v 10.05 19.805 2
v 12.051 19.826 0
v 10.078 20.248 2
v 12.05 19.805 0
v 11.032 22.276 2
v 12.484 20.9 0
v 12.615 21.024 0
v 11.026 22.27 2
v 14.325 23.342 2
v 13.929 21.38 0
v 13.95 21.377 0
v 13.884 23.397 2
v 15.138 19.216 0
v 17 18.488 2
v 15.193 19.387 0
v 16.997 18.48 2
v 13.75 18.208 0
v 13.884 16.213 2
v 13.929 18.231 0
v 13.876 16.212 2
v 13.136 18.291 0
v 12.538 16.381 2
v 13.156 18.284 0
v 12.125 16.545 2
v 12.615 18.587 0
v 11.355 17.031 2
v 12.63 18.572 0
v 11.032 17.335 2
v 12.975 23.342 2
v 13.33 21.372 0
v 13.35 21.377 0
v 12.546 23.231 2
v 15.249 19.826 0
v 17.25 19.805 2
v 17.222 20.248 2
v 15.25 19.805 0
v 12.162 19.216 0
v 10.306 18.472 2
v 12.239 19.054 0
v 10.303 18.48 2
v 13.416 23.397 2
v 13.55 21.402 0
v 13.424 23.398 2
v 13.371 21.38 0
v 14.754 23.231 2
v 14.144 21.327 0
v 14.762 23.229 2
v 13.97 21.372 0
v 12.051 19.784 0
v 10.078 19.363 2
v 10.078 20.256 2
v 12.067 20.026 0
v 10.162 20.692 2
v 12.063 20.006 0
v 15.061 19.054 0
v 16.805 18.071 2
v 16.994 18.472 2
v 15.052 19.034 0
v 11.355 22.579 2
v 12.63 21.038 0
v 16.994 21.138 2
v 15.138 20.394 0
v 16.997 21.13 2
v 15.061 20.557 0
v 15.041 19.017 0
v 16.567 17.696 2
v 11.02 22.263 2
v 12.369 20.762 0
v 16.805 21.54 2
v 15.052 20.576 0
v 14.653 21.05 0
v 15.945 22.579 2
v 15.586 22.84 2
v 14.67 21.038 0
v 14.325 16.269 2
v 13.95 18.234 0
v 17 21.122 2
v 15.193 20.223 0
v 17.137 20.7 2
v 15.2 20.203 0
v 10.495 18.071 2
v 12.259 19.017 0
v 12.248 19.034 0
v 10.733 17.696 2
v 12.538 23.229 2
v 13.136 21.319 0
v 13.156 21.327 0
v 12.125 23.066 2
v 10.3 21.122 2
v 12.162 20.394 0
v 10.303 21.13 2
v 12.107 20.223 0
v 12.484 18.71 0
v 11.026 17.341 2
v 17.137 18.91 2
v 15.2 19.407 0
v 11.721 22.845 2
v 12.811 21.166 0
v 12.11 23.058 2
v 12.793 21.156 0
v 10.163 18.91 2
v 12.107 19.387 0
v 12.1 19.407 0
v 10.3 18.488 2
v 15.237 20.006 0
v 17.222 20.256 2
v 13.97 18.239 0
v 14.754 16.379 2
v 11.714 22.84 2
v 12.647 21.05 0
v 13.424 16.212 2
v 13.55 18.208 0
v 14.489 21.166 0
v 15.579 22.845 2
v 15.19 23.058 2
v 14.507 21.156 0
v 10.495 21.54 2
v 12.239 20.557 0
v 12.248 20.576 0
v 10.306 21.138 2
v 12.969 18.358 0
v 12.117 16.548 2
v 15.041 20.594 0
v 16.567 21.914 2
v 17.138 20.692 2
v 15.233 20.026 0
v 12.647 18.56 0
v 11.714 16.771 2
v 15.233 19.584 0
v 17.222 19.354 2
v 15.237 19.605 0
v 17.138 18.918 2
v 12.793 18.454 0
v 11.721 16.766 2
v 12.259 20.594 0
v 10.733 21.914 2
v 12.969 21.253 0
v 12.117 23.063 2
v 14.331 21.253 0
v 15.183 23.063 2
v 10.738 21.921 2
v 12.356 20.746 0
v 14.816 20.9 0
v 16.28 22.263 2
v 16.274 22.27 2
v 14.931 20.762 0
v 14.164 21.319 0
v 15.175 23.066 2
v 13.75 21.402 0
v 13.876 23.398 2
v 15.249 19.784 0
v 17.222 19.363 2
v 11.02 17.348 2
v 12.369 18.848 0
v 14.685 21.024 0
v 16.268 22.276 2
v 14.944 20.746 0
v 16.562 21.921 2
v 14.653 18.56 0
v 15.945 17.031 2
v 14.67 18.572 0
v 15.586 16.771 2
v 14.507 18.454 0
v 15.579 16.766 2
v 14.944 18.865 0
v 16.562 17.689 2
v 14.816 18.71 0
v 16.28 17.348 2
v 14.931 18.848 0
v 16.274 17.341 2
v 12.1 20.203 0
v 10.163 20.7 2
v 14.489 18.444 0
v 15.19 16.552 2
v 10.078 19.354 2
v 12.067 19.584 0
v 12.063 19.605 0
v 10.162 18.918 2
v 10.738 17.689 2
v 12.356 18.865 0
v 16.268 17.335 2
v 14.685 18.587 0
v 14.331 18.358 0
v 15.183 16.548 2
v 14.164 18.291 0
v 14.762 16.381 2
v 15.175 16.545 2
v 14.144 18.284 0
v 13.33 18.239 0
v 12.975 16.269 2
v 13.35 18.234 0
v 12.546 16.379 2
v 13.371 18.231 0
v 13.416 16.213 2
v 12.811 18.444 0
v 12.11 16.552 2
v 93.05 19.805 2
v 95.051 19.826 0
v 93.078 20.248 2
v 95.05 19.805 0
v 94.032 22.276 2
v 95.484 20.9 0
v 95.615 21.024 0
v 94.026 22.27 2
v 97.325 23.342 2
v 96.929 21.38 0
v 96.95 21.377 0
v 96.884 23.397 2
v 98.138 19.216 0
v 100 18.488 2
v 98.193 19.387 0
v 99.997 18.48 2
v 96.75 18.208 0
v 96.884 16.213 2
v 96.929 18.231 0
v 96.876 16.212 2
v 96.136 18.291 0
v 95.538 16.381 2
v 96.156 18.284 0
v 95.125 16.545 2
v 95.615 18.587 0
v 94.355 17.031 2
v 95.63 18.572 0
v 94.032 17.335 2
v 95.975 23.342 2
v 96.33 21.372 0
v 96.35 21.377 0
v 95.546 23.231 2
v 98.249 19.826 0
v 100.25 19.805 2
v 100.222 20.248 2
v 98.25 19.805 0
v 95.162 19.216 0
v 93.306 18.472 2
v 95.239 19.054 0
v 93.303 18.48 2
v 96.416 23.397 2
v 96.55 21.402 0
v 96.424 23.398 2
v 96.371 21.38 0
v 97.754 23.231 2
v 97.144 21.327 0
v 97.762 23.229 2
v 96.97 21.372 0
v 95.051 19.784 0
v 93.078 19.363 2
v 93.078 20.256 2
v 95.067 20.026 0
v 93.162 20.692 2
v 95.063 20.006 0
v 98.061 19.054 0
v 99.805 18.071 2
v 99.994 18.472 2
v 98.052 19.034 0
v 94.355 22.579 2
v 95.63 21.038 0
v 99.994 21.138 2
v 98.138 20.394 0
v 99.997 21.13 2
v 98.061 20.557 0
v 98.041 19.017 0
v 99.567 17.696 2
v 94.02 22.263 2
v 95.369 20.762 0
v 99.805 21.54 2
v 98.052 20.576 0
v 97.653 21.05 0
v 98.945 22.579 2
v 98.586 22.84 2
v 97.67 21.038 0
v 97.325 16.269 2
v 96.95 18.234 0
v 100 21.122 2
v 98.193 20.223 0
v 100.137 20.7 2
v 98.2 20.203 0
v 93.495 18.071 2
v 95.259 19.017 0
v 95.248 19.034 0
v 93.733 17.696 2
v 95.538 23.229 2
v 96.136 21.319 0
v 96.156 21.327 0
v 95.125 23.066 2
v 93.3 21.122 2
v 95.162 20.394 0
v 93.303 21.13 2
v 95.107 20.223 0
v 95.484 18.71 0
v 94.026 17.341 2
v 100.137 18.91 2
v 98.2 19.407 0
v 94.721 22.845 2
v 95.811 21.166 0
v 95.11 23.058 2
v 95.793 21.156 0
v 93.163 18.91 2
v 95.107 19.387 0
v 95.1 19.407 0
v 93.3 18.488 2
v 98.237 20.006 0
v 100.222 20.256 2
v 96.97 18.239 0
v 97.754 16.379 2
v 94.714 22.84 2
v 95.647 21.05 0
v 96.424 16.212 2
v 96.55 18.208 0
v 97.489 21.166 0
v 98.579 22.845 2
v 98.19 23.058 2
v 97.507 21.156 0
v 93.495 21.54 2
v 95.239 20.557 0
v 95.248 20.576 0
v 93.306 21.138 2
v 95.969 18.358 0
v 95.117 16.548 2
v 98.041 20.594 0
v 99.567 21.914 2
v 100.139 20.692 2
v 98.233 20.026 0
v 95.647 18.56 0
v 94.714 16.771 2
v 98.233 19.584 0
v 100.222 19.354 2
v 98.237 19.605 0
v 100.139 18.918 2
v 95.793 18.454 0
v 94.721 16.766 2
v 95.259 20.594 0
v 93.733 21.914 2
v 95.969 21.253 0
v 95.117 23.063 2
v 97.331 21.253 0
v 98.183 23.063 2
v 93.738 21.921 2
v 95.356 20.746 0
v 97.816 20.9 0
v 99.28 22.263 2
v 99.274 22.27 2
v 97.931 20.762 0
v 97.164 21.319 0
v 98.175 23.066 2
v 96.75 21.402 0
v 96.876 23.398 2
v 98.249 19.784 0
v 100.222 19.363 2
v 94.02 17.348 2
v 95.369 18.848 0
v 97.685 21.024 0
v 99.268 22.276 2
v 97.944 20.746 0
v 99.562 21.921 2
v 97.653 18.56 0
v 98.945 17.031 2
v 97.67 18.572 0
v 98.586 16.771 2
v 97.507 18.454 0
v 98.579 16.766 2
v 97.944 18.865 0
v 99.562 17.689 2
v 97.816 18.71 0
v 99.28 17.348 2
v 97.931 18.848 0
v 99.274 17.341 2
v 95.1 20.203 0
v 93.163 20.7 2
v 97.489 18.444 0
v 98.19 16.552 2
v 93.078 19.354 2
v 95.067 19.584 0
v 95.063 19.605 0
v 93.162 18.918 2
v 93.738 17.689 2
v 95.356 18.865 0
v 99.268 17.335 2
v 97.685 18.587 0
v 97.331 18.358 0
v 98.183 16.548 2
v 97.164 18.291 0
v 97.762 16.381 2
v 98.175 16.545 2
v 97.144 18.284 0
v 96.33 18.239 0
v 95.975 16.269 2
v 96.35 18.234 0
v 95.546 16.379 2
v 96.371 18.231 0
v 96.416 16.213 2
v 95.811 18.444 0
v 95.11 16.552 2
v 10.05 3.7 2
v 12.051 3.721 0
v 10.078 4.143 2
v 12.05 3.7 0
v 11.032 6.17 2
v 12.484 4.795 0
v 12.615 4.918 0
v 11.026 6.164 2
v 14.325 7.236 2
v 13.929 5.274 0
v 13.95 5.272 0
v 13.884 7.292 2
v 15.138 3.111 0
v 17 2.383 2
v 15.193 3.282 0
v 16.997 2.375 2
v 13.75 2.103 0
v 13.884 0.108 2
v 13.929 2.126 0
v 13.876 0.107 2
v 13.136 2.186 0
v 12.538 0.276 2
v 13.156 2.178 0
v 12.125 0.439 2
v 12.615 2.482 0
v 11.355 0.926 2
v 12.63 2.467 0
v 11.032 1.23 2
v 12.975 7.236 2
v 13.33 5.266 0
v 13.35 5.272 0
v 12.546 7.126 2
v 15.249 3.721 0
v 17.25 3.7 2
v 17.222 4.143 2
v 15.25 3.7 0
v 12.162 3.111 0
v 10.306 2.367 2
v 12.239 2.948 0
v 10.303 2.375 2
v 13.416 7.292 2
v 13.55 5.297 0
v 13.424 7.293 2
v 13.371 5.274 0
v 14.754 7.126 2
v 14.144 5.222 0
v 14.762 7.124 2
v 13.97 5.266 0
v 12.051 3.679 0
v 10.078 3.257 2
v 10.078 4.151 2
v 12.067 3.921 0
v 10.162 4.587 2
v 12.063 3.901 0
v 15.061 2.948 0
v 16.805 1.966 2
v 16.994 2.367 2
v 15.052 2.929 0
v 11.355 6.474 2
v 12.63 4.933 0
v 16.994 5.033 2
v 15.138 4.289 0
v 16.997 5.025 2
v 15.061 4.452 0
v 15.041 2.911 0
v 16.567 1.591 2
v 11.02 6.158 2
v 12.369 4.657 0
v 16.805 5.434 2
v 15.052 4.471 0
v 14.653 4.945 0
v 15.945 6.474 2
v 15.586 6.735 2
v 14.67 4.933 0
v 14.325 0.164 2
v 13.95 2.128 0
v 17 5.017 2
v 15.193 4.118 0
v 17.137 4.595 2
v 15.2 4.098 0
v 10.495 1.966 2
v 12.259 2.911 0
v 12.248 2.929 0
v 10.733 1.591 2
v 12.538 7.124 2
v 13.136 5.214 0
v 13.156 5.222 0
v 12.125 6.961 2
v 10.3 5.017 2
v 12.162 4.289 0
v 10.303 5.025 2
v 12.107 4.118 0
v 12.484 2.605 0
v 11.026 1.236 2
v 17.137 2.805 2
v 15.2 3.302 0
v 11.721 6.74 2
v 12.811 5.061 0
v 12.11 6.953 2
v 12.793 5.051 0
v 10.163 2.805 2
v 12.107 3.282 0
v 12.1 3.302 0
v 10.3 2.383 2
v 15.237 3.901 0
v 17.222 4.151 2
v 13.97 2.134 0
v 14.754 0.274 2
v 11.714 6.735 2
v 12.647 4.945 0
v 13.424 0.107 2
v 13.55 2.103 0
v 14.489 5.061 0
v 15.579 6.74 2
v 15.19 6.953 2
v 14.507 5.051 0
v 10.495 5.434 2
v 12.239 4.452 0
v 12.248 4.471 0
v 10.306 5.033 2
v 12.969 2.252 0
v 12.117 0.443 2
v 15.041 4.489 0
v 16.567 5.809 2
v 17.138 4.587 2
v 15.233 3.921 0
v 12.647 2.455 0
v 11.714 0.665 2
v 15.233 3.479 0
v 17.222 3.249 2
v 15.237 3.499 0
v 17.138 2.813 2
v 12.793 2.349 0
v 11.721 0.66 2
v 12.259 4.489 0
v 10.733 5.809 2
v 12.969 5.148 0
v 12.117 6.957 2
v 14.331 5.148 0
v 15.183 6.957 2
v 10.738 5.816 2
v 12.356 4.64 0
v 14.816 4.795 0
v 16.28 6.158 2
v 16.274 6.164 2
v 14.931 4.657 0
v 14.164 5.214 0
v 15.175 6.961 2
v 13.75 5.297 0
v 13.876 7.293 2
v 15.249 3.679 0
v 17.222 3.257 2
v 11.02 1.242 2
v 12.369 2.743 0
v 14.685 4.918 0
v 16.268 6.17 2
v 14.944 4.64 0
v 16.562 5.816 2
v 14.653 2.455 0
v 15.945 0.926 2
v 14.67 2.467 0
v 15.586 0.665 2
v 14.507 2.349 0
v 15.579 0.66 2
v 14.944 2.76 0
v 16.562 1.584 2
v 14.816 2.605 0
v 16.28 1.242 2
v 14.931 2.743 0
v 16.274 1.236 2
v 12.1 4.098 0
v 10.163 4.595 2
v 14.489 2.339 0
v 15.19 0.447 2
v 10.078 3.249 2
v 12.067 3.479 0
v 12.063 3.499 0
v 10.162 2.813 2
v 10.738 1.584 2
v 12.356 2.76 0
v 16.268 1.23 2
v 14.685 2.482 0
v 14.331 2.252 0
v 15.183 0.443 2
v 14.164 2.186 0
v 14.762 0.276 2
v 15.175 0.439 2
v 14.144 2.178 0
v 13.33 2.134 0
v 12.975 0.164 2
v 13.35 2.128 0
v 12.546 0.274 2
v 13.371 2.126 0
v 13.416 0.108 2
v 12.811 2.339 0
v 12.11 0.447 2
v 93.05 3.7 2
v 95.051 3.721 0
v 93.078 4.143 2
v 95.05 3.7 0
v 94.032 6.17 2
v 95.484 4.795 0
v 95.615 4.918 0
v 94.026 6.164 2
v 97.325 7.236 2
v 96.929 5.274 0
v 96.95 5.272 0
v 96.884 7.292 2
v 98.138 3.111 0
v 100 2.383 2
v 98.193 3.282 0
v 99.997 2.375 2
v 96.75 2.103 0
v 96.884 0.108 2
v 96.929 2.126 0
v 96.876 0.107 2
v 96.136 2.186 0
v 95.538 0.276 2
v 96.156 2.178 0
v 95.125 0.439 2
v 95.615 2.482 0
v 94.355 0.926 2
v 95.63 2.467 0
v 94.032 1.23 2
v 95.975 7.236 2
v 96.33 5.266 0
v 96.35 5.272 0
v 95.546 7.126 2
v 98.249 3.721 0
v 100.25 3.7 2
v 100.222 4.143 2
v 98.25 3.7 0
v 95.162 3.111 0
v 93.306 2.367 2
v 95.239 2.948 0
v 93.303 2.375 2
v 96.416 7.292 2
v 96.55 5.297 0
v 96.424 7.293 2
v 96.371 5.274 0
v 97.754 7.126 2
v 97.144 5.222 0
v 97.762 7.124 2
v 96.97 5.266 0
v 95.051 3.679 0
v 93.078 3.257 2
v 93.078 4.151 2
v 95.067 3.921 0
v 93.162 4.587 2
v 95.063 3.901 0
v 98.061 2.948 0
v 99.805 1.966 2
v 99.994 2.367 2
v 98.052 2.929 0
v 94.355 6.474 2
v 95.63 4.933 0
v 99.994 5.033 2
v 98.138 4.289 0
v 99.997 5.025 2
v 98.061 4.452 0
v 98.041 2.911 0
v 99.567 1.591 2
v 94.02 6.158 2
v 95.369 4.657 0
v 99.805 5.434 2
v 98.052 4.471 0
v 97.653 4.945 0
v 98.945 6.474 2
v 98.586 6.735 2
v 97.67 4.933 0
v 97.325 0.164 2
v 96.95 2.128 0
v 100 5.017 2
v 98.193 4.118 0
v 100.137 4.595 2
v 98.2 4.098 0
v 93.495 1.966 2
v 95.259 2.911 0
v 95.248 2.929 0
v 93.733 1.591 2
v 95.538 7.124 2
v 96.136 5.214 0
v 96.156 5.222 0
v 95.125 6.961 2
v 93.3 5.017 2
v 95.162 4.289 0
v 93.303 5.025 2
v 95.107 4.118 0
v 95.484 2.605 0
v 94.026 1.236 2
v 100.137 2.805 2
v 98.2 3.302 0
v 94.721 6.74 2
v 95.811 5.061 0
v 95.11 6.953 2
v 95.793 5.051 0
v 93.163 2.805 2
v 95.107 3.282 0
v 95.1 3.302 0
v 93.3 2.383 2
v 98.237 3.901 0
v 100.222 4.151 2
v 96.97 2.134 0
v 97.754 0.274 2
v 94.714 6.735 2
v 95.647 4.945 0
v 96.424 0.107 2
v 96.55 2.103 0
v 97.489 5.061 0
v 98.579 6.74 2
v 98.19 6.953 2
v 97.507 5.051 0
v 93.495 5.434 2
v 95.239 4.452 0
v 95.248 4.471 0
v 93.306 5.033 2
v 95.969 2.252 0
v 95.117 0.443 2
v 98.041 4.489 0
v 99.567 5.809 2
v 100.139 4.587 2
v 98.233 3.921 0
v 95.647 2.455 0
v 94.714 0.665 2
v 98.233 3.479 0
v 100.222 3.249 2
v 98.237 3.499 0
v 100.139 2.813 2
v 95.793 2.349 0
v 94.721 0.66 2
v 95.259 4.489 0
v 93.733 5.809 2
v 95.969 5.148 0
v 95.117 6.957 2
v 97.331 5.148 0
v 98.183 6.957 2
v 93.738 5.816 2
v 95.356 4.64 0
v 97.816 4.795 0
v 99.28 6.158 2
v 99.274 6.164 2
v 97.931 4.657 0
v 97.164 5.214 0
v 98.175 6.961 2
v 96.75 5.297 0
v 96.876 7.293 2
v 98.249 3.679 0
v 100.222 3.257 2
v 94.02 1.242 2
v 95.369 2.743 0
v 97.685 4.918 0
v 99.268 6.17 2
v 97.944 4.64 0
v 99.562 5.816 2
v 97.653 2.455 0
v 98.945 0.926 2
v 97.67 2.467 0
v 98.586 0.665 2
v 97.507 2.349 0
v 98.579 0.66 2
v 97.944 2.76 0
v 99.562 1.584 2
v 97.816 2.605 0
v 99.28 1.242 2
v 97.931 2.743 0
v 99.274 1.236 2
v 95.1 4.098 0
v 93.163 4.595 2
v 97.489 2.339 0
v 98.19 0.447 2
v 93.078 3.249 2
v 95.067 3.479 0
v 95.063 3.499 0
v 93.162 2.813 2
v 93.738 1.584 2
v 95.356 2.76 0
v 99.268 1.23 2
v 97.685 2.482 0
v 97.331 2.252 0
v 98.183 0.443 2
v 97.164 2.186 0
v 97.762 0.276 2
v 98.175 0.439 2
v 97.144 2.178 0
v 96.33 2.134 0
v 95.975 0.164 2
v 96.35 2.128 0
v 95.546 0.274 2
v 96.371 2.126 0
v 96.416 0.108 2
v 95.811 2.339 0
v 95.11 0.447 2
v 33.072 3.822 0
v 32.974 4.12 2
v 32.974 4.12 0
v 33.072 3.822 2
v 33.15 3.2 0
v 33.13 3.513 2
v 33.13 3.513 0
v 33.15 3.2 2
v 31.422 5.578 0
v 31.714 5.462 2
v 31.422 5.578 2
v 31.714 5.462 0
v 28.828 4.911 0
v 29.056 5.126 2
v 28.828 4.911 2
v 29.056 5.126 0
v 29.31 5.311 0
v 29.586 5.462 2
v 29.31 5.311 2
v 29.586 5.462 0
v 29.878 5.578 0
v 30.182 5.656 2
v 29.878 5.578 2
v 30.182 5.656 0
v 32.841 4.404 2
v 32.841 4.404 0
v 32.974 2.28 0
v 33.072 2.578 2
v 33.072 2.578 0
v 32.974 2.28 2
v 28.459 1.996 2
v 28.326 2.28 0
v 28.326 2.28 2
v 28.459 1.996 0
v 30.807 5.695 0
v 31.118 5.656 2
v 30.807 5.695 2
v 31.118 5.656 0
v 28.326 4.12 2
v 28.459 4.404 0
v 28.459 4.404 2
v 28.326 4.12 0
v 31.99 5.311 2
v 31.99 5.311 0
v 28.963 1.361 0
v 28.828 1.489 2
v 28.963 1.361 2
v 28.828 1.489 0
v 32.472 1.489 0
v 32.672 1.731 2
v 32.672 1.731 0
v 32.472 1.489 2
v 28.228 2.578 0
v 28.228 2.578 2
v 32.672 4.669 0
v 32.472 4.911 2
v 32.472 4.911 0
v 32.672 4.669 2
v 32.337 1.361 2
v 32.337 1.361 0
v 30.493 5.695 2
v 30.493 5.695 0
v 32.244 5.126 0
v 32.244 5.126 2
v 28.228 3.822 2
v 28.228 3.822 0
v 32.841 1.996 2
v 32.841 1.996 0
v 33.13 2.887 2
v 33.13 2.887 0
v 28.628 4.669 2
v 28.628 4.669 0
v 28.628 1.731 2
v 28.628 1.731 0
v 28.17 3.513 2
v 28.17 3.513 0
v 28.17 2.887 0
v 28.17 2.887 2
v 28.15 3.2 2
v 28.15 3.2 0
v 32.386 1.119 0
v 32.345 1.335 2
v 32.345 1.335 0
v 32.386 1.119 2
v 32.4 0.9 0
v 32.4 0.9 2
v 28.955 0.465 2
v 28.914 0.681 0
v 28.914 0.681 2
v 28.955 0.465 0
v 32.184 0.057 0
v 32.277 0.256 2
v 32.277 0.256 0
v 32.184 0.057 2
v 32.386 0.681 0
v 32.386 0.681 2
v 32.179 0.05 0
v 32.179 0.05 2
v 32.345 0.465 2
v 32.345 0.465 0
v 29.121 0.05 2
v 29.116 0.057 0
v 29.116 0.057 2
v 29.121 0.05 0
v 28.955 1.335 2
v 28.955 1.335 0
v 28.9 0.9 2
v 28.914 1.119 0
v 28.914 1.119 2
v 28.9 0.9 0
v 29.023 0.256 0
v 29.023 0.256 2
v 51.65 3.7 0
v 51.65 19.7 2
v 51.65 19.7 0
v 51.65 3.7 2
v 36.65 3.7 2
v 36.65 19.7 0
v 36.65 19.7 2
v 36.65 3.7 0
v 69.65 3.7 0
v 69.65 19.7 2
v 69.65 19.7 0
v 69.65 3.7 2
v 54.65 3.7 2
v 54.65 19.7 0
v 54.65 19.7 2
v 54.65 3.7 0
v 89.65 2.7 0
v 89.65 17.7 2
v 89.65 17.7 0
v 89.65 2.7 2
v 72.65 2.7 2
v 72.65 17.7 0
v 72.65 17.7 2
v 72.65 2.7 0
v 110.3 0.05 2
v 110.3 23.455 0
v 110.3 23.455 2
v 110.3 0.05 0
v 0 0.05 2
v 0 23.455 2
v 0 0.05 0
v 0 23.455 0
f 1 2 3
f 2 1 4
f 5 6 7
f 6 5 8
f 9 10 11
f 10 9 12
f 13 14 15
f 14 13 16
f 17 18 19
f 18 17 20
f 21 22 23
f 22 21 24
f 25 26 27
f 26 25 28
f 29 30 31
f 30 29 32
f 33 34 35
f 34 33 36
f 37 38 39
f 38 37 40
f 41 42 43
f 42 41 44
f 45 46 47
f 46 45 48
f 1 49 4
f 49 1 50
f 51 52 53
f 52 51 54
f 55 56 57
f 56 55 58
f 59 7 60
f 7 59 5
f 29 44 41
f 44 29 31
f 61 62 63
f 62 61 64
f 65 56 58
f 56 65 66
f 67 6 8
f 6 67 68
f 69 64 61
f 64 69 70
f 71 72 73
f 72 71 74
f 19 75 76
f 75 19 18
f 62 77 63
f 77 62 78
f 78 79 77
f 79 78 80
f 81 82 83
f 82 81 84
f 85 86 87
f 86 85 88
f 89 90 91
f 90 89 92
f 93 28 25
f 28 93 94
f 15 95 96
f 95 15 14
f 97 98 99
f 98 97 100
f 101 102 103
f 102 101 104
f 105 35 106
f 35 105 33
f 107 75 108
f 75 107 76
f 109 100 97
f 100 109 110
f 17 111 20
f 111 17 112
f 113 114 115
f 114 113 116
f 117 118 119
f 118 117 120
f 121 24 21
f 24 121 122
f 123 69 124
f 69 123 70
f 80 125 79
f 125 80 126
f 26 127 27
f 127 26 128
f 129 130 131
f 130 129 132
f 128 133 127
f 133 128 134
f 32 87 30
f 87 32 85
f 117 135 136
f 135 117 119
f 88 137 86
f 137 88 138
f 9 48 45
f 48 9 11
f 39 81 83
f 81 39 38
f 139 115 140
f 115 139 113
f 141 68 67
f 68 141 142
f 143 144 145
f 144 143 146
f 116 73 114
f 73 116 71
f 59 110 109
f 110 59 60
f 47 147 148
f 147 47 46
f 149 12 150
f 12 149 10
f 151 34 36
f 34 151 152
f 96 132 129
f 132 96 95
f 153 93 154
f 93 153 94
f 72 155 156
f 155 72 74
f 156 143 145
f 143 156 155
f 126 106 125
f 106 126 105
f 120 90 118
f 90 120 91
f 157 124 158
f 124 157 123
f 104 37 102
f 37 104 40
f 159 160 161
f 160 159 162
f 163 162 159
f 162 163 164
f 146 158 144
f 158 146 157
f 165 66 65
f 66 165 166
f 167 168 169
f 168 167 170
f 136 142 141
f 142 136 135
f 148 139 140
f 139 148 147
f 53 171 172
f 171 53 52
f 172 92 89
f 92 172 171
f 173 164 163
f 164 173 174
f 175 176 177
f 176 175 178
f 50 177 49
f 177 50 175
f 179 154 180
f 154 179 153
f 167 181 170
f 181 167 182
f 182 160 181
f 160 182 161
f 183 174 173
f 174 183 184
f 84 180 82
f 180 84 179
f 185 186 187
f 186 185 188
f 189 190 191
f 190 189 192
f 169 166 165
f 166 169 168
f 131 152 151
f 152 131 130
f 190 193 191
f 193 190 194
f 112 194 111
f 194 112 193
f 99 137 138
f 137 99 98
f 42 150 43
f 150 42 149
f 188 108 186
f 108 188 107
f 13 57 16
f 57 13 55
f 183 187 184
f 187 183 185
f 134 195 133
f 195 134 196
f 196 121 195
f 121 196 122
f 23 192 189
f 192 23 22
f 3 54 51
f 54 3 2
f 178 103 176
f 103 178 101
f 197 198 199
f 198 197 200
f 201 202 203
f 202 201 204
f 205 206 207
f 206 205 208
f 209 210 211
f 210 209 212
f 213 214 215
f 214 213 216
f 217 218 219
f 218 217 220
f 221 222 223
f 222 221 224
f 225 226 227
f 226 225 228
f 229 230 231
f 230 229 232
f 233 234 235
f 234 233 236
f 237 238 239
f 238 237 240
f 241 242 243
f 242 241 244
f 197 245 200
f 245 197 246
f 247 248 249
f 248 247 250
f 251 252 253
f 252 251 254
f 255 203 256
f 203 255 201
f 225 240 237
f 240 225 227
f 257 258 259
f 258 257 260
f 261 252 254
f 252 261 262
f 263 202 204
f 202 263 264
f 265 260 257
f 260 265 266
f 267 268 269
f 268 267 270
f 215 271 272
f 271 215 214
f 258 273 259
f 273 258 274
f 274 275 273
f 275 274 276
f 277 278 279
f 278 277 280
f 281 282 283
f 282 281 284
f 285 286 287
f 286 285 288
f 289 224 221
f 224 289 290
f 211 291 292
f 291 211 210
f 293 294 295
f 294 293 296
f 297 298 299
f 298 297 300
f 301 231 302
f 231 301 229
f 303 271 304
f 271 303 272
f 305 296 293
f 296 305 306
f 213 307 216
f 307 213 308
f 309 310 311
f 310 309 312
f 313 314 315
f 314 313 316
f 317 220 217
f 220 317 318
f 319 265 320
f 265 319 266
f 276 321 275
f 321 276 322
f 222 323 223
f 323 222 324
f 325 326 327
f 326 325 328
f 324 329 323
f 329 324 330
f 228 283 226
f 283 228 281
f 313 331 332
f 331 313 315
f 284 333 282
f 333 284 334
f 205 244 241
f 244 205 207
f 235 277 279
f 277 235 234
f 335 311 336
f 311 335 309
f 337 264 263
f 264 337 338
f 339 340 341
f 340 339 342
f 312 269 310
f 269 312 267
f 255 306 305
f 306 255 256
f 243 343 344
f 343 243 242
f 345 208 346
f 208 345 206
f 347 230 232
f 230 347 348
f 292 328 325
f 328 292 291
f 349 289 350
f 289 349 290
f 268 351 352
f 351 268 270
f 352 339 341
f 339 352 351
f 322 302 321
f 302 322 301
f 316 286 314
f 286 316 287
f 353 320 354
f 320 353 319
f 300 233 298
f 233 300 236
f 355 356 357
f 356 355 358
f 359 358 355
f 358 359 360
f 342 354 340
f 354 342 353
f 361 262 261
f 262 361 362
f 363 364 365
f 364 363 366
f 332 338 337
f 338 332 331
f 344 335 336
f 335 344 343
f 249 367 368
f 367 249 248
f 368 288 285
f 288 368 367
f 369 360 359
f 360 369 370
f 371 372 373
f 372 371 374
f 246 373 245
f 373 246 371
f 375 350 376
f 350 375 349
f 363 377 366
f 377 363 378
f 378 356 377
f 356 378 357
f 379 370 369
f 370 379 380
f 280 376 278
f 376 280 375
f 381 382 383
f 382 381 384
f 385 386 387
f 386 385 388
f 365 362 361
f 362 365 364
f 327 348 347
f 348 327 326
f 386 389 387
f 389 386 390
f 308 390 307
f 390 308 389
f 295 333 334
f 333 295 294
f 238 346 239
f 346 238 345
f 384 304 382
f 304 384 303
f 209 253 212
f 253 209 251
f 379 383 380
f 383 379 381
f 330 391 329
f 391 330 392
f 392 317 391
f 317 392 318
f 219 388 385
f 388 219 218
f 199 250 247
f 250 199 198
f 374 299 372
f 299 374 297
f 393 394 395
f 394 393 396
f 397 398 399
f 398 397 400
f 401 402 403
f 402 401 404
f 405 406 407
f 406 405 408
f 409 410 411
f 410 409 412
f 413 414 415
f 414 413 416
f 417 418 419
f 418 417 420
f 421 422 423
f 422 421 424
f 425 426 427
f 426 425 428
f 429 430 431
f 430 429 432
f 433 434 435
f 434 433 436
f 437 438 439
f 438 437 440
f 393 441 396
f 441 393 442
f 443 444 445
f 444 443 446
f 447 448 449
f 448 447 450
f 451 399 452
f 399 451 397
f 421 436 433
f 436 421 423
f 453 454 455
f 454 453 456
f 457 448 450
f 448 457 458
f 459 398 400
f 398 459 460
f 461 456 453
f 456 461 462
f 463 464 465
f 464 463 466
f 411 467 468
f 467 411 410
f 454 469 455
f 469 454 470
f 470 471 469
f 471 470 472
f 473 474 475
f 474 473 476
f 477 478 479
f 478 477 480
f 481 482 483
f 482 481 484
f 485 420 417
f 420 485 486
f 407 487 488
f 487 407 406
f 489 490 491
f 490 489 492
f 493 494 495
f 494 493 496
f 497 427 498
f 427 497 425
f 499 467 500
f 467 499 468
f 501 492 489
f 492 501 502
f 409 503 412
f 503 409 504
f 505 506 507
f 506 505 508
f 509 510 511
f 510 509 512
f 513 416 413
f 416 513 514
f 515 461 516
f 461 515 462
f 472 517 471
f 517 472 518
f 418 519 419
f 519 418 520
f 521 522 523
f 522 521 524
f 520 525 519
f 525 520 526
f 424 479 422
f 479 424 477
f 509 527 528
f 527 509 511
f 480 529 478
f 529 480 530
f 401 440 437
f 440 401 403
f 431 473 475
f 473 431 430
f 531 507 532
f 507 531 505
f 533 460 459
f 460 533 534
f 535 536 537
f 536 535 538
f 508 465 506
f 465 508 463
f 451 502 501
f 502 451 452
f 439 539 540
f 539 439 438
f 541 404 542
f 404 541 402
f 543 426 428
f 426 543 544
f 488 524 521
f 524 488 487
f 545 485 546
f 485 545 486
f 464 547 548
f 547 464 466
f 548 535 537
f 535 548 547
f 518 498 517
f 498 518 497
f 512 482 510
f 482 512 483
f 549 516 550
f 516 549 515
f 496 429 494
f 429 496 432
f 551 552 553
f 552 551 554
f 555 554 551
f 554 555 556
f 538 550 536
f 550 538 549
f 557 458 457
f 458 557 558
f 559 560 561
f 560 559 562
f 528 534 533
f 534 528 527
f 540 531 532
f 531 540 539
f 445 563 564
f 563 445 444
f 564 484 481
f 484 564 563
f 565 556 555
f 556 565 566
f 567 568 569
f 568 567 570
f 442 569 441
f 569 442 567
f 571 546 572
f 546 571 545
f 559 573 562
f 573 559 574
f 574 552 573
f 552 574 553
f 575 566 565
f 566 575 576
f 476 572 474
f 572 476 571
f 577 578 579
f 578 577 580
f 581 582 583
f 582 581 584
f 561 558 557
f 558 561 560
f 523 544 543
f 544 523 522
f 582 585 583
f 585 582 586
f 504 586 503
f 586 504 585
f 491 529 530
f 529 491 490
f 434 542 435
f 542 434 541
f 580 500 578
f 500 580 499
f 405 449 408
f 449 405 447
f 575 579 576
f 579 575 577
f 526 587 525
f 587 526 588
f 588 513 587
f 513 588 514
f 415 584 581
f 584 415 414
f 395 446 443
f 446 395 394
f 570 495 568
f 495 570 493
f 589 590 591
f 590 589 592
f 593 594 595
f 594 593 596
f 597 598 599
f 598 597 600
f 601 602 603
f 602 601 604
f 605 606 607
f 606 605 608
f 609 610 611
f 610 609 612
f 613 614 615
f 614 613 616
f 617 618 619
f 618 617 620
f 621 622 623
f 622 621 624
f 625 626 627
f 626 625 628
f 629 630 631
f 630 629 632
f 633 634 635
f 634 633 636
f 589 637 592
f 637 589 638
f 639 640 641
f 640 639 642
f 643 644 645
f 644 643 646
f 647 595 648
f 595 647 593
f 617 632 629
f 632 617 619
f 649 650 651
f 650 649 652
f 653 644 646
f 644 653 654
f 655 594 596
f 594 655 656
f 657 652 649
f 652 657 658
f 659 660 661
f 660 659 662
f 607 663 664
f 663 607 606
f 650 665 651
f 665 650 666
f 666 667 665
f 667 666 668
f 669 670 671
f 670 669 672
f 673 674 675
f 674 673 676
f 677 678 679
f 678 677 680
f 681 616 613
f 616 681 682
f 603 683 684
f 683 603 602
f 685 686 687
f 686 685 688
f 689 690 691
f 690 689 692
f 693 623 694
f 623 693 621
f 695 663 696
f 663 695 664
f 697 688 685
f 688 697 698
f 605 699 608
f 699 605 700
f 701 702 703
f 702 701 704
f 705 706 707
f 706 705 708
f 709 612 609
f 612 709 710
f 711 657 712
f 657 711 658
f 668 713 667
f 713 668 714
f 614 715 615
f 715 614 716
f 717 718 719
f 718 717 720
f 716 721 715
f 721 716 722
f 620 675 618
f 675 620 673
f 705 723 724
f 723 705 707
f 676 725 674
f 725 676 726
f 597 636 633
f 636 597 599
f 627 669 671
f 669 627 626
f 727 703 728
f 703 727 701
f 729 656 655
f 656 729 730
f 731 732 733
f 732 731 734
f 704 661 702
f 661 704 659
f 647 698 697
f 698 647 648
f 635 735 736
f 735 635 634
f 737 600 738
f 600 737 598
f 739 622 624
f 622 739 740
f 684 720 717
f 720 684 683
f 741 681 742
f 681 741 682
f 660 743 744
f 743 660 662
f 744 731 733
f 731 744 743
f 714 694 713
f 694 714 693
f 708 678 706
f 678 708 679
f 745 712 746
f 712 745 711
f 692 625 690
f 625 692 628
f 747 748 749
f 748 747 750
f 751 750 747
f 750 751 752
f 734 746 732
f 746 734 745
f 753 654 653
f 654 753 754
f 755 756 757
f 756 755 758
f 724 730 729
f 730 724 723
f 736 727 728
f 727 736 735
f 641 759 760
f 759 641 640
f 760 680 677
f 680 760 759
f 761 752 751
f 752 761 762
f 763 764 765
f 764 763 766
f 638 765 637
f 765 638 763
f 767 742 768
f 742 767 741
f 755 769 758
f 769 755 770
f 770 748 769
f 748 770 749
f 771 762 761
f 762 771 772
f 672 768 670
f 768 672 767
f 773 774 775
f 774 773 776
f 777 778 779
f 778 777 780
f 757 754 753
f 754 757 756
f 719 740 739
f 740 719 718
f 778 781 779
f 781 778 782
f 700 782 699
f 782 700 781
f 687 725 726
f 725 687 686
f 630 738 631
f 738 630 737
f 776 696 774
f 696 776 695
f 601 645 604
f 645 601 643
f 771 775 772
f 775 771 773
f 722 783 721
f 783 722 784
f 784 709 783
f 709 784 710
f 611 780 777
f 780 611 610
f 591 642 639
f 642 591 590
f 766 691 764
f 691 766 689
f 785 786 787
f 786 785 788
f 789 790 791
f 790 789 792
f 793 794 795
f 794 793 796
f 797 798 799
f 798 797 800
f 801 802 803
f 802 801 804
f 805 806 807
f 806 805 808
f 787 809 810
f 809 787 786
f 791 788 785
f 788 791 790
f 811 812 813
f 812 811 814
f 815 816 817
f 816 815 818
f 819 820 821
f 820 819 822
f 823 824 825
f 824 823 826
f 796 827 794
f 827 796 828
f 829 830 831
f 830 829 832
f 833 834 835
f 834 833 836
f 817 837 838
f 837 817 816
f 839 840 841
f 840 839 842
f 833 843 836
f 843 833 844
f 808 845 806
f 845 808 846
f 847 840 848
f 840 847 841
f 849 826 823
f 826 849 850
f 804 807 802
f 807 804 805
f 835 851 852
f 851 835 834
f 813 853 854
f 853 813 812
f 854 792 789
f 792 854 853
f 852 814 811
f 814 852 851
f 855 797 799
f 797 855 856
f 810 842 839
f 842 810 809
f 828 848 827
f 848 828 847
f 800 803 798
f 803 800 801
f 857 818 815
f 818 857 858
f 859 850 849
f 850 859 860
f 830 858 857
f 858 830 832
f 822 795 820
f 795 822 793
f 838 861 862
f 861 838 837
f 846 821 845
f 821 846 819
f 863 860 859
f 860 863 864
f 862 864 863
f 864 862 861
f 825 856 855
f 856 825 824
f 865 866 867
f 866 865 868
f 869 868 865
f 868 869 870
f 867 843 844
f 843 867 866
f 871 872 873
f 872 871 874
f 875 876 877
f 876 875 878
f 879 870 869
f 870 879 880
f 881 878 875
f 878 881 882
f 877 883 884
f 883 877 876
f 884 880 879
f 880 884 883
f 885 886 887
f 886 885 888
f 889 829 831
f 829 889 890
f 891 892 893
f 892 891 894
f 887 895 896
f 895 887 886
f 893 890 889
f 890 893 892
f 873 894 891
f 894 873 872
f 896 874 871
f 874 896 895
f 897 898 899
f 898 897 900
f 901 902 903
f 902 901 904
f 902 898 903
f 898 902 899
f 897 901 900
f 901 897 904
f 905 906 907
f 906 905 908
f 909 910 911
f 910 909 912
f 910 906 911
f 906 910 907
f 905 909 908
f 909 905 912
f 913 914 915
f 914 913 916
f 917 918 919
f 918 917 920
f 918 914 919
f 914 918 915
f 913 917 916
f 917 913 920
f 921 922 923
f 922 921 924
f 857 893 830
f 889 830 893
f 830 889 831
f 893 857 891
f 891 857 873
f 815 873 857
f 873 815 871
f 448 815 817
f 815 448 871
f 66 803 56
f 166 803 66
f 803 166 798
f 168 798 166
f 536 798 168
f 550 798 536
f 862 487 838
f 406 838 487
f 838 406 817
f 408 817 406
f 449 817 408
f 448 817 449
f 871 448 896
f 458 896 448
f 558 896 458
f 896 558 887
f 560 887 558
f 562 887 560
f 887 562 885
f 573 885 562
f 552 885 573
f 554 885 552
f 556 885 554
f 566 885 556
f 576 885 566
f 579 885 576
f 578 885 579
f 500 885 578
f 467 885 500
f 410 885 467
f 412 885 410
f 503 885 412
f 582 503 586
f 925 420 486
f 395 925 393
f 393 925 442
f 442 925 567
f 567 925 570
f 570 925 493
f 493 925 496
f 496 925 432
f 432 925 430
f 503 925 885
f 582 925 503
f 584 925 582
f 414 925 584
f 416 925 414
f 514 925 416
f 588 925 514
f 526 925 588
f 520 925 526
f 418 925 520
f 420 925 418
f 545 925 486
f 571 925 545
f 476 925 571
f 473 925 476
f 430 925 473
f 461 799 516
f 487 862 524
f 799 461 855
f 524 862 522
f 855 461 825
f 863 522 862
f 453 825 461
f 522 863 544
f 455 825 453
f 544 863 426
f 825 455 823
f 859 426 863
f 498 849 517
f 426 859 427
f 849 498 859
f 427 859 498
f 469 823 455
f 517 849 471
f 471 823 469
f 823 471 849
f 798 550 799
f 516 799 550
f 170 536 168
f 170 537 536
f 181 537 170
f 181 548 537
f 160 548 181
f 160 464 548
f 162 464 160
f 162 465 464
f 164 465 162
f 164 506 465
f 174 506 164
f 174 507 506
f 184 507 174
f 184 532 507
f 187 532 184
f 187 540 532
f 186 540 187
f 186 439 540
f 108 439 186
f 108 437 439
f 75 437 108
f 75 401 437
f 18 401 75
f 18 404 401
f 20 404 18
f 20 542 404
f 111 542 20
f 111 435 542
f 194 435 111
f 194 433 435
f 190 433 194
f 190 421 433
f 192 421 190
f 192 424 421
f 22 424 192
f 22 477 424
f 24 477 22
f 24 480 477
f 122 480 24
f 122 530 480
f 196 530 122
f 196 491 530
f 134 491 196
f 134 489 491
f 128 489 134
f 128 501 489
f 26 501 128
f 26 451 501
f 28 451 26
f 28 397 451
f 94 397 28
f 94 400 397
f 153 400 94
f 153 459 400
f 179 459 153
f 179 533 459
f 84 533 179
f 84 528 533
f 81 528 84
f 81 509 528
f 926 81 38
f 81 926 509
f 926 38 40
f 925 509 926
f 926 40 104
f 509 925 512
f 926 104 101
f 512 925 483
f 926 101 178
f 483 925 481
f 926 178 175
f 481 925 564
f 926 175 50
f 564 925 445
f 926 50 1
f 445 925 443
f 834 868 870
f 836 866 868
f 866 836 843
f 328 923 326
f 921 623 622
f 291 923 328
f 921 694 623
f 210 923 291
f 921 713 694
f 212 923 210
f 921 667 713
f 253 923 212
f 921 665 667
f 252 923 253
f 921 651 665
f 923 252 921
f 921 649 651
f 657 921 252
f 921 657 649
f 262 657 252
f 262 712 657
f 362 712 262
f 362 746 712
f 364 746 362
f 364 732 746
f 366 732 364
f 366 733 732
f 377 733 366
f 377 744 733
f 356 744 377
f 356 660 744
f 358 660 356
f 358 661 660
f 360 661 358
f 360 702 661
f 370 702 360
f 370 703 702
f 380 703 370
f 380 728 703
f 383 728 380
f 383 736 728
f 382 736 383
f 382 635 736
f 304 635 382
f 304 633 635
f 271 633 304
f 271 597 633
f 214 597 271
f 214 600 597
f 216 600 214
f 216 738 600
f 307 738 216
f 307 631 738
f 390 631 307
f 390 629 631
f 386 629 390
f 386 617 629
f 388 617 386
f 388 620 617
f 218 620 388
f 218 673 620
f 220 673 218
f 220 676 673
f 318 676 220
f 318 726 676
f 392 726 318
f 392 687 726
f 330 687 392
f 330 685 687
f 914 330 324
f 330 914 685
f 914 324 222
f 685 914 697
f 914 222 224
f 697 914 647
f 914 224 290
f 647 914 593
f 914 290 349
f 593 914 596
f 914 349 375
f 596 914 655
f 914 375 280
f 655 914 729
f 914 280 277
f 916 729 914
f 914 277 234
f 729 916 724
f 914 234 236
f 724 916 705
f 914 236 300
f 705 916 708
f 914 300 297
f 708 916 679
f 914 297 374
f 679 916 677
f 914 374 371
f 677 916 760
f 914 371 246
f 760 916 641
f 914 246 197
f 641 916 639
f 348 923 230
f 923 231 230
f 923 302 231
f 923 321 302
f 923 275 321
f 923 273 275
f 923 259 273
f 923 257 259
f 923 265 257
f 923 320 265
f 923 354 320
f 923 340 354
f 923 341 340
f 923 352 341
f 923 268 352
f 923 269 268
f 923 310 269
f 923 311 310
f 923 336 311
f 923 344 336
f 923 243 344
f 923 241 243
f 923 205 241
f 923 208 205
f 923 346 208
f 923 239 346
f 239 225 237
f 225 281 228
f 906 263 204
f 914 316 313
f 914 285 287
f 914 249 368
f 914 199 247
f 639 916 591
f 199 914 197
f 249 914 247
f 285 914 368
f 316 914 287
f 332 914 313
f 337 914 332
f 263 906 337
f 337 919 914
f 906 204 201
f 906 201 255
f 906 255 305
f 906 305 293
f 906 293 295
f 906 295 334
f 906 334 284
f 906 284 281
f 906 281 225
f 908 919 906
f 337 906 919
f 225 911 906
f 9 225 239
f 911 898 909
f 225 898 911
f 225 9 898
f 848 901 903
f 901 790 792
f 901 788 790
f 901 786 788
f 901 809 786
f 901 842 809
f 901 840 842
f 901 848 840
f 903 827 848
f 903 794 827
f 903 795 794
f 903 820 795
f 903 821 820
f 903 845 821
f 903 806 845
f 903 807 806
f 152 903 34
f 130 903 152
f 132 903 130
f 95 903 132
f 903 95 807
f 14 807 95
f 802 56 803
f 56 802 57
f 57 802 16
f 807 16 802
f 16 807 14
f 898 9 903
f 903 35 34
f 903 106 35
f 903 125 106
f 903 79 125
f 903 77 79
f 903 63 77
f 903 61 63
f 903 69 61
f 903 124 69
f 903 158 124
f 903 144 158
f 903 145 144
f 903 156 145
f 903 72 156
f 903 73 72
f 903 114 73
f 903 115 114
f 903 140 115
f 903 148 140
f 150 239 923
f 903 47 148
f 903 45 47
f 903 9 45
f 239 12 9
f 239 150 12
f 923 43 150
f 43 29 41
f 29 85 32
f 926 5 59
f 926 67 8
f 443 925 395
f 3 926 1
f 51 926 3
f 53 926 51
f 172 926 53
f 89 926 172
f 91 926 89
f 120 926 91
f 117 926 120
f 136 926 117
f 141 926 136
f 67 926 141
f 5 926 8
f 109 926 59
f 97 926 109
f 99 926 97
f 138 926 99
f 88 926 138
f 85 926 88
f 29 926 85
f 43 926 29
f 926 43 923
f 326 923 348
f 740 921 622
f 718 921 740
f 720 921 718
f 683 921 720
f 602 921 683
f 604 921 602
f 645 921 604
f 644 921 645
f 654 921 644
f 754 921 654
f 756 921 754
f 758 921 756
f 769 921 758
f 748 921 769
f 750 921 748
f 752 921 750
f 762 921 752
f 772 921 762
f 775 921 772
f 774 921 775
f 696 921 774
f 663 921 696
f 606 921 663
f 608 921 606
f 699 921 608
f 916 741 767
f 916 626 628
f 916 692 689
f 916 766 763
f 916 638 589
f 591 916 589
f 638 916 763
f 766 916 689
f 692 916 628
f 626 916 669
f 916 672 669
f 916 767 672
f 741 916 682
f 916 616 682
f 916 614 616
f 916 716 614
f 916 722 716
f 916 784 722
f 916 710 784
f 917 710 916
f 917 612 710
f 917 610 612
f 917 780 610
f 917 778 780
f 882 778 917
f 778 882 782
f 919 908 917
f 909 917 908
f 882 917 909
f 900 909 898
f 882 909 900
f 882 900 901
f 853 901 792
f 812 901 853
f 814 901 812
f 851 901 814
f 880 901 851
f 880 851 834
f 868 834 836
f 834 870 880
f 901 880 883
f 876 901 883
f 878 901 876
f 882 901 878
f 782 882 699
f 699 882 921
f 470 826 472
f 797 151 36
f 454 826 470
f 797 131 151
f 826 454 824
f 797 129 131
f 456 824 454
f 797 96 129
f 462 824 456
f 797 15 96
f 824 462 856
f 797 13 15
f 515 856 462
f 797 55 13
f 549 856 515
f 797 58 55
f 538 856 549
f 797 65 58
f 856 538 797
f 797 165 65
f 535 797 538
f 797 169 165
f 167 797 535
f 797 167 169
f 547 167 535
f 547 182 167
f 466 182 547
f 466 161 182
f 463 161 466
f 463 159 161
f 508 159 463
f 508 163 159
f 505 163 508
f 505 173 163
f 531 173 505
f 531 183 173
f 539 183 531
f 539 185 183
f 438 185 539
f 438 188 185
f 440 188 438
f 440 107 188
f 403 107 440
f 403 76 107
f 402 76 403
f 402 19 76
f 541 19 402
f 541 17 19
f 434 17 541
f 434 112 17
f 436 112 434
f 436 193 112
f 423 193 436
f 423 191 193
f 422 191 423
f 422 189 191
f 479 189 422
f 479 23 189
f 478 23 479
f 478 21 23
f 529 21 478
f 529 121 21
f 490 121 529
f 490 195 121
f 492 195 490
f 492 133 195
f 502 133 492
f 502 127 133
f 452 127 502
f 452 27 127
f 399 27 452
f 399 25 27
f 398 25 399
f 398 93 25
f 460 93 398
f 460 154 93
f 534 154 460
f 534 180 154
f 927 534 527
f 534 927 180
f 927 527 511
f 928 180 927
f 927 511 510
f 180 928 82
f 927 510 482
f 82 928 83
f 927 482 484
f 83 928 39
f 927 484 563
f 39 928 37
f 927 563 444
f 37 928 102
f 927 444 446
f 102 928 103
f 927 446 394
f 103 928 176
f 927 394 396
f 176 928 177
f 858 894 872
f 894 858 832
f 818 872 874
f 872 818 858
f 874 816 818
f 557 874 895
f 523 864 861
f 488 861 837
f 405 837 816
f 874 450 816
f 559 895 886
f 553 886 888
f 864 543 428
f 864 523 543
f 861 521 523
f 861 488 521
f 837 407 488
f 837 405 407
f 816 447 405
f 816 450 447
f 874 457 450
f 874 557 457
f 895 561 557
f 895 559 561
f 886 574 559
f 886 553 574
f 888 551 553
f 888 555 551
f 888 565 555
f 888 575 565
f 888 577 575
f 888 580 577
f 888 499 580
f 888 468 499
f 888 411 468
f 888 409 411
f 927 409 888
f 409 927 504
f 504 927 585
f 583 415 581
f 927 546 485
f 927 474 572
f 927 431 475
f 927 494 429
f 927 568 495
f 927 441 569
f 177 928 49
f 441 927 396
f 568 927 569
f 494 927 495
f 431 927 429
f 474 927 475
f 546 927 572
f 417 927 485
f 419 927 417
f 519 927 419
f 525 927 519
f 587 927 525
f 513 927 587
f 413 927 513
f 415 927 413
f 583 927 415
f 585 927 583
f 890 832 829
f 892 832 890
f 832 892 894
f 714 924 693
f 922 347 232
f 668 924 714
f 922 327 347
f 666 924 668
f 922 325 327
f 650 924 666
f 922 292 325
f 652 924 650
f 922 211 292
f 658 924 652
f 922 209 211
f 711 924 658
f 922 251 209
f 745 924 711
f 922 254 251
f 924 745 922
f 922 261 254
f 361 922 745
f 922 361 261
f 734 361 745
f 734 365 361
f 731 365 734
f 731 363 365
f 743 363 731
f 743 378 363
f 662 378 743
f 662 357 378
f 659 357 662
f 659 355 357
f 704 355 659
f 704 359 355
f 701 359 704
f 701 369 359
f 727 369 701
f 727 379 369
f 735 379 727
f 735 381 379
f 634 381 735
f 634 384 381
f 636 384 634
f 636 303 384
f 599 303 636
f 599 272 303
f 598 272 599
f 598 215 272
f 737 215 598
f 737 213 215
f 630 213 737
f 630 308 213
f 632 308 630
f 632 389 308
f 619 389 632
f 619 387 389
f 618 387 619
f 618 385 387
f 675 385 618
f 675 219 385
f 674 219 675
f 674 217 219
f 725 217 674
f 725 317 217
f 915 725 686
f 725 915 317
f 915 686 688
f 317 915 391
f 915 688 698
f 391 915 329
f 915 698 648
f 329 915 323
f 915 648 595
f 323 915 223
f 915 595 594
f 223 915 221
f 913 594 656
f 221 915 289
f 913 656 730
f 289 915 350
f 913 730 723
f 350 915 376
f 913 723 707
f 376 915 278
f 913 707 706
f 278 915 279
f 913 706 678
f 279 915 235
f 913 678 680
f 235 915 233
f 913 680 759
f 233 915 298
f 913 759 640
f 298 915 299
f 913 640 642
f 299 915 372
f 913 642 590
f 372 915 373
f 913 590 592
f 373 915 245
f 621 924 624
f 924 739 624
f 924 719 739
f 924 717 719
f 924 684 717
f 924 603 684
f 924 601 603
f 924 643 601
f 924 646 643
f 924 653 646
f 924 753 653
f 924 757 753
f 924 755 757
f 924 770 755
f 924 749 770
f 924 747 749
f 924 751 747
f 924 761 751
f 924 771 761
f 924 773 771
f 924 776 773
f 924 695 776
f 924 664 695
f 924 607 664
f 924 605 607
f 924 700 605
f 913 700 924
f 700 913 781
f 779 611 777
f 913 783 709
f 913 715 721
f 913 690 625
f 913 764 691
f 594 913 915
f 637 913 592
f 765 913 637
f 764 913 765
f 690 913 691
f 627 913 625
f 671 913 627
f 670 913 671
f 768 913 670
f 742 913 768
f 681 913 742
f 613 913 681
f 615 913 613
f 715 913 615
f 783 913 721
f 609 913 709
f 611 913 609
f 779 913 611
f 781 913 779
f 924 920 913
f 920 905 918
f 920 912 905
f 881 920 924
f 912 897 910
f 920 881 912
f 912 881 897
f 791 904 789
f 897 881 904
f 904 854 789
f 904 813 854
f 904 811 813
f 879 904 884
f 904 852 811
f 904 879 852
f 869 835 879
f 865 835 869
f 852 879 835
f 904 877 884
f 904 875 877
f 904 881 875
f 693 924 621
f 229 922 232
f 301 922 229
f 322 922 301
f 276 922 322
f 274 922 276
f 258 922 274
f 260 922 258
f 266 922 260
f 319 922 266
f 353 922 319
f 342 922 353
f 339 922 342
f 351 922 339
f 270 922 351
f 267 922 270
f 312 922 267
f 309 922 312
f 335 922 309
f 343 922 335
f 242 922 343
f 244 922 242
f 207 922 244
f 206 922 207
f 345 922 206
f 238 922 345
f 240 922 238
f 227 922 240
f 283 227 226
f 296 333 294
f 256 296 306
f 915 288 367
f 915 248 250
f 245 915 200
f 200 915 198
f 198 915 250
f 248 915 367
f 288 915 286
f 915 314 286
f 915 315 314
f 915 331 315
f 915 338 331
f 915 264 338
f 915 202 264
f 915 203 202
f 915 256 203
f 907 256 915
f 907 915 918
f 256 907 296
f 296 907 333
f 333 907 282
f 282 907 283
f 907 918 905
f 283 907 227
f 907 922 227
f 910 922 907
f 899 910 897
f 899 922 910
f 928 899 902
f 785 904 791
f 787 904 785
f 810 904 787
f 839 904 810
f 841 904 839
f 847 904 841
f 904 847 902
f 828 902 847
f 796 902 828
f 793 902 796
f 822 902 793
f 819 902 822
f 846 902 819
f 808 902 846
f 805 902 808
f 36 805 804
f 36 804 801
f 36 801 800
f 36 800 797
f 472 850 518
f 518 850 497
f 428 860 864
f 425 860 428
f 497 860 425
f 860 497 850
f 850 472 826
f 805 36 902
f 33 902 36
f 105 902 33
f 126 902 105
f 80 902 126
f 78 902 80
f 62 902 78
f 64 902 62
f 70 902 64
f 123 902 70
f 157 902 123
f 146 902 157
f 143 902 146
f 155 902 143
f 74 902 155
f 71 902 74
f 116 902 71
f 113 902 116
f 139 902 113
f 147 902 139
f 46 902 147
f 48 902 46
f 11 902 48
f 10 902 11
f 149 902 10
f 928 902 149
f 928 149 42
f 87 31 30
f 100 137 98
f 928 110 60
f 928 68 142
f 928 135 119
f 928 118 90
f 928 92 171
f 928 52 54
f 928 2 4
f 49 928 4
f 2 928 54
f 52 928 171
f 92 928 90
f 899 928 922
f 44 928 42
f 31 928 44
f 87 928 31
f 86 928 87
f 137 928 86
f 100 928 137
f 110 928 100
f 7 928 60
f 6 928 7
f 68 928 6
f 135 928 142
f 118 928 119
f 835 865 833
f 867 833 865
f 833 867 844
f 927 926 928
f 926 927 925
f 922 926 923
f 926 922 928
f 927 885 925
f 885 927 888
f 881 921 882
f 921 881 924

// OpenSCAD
include<../sixinch_library.scad>


  ///////////////////////////////
 // Raspberry Pi 3 Model 4    //
///////////////////////////////

print_rear           = true;


if(print_rear){  // Back plate //    
    square_hole  = [
        [37 ,4, 15, 16] , 
        [55 ,4, 15, 16] , 
        [73 ,3, 17, 15]  
    ];
    
    round_hole   = [[31,3.5,5],[31,1.2,3.5]];
    screw_top    = [36];//mm
    screw_bottom = [36];//mm
    screw_side   = [];
    depth        = 98;
    units        = 2;
    
    translate([-22.35,-2.3,-99]){
        back_plate(units,depth,screw_top,screw_bottom,screw_side,square_hole,round_hole);
    }
}  
